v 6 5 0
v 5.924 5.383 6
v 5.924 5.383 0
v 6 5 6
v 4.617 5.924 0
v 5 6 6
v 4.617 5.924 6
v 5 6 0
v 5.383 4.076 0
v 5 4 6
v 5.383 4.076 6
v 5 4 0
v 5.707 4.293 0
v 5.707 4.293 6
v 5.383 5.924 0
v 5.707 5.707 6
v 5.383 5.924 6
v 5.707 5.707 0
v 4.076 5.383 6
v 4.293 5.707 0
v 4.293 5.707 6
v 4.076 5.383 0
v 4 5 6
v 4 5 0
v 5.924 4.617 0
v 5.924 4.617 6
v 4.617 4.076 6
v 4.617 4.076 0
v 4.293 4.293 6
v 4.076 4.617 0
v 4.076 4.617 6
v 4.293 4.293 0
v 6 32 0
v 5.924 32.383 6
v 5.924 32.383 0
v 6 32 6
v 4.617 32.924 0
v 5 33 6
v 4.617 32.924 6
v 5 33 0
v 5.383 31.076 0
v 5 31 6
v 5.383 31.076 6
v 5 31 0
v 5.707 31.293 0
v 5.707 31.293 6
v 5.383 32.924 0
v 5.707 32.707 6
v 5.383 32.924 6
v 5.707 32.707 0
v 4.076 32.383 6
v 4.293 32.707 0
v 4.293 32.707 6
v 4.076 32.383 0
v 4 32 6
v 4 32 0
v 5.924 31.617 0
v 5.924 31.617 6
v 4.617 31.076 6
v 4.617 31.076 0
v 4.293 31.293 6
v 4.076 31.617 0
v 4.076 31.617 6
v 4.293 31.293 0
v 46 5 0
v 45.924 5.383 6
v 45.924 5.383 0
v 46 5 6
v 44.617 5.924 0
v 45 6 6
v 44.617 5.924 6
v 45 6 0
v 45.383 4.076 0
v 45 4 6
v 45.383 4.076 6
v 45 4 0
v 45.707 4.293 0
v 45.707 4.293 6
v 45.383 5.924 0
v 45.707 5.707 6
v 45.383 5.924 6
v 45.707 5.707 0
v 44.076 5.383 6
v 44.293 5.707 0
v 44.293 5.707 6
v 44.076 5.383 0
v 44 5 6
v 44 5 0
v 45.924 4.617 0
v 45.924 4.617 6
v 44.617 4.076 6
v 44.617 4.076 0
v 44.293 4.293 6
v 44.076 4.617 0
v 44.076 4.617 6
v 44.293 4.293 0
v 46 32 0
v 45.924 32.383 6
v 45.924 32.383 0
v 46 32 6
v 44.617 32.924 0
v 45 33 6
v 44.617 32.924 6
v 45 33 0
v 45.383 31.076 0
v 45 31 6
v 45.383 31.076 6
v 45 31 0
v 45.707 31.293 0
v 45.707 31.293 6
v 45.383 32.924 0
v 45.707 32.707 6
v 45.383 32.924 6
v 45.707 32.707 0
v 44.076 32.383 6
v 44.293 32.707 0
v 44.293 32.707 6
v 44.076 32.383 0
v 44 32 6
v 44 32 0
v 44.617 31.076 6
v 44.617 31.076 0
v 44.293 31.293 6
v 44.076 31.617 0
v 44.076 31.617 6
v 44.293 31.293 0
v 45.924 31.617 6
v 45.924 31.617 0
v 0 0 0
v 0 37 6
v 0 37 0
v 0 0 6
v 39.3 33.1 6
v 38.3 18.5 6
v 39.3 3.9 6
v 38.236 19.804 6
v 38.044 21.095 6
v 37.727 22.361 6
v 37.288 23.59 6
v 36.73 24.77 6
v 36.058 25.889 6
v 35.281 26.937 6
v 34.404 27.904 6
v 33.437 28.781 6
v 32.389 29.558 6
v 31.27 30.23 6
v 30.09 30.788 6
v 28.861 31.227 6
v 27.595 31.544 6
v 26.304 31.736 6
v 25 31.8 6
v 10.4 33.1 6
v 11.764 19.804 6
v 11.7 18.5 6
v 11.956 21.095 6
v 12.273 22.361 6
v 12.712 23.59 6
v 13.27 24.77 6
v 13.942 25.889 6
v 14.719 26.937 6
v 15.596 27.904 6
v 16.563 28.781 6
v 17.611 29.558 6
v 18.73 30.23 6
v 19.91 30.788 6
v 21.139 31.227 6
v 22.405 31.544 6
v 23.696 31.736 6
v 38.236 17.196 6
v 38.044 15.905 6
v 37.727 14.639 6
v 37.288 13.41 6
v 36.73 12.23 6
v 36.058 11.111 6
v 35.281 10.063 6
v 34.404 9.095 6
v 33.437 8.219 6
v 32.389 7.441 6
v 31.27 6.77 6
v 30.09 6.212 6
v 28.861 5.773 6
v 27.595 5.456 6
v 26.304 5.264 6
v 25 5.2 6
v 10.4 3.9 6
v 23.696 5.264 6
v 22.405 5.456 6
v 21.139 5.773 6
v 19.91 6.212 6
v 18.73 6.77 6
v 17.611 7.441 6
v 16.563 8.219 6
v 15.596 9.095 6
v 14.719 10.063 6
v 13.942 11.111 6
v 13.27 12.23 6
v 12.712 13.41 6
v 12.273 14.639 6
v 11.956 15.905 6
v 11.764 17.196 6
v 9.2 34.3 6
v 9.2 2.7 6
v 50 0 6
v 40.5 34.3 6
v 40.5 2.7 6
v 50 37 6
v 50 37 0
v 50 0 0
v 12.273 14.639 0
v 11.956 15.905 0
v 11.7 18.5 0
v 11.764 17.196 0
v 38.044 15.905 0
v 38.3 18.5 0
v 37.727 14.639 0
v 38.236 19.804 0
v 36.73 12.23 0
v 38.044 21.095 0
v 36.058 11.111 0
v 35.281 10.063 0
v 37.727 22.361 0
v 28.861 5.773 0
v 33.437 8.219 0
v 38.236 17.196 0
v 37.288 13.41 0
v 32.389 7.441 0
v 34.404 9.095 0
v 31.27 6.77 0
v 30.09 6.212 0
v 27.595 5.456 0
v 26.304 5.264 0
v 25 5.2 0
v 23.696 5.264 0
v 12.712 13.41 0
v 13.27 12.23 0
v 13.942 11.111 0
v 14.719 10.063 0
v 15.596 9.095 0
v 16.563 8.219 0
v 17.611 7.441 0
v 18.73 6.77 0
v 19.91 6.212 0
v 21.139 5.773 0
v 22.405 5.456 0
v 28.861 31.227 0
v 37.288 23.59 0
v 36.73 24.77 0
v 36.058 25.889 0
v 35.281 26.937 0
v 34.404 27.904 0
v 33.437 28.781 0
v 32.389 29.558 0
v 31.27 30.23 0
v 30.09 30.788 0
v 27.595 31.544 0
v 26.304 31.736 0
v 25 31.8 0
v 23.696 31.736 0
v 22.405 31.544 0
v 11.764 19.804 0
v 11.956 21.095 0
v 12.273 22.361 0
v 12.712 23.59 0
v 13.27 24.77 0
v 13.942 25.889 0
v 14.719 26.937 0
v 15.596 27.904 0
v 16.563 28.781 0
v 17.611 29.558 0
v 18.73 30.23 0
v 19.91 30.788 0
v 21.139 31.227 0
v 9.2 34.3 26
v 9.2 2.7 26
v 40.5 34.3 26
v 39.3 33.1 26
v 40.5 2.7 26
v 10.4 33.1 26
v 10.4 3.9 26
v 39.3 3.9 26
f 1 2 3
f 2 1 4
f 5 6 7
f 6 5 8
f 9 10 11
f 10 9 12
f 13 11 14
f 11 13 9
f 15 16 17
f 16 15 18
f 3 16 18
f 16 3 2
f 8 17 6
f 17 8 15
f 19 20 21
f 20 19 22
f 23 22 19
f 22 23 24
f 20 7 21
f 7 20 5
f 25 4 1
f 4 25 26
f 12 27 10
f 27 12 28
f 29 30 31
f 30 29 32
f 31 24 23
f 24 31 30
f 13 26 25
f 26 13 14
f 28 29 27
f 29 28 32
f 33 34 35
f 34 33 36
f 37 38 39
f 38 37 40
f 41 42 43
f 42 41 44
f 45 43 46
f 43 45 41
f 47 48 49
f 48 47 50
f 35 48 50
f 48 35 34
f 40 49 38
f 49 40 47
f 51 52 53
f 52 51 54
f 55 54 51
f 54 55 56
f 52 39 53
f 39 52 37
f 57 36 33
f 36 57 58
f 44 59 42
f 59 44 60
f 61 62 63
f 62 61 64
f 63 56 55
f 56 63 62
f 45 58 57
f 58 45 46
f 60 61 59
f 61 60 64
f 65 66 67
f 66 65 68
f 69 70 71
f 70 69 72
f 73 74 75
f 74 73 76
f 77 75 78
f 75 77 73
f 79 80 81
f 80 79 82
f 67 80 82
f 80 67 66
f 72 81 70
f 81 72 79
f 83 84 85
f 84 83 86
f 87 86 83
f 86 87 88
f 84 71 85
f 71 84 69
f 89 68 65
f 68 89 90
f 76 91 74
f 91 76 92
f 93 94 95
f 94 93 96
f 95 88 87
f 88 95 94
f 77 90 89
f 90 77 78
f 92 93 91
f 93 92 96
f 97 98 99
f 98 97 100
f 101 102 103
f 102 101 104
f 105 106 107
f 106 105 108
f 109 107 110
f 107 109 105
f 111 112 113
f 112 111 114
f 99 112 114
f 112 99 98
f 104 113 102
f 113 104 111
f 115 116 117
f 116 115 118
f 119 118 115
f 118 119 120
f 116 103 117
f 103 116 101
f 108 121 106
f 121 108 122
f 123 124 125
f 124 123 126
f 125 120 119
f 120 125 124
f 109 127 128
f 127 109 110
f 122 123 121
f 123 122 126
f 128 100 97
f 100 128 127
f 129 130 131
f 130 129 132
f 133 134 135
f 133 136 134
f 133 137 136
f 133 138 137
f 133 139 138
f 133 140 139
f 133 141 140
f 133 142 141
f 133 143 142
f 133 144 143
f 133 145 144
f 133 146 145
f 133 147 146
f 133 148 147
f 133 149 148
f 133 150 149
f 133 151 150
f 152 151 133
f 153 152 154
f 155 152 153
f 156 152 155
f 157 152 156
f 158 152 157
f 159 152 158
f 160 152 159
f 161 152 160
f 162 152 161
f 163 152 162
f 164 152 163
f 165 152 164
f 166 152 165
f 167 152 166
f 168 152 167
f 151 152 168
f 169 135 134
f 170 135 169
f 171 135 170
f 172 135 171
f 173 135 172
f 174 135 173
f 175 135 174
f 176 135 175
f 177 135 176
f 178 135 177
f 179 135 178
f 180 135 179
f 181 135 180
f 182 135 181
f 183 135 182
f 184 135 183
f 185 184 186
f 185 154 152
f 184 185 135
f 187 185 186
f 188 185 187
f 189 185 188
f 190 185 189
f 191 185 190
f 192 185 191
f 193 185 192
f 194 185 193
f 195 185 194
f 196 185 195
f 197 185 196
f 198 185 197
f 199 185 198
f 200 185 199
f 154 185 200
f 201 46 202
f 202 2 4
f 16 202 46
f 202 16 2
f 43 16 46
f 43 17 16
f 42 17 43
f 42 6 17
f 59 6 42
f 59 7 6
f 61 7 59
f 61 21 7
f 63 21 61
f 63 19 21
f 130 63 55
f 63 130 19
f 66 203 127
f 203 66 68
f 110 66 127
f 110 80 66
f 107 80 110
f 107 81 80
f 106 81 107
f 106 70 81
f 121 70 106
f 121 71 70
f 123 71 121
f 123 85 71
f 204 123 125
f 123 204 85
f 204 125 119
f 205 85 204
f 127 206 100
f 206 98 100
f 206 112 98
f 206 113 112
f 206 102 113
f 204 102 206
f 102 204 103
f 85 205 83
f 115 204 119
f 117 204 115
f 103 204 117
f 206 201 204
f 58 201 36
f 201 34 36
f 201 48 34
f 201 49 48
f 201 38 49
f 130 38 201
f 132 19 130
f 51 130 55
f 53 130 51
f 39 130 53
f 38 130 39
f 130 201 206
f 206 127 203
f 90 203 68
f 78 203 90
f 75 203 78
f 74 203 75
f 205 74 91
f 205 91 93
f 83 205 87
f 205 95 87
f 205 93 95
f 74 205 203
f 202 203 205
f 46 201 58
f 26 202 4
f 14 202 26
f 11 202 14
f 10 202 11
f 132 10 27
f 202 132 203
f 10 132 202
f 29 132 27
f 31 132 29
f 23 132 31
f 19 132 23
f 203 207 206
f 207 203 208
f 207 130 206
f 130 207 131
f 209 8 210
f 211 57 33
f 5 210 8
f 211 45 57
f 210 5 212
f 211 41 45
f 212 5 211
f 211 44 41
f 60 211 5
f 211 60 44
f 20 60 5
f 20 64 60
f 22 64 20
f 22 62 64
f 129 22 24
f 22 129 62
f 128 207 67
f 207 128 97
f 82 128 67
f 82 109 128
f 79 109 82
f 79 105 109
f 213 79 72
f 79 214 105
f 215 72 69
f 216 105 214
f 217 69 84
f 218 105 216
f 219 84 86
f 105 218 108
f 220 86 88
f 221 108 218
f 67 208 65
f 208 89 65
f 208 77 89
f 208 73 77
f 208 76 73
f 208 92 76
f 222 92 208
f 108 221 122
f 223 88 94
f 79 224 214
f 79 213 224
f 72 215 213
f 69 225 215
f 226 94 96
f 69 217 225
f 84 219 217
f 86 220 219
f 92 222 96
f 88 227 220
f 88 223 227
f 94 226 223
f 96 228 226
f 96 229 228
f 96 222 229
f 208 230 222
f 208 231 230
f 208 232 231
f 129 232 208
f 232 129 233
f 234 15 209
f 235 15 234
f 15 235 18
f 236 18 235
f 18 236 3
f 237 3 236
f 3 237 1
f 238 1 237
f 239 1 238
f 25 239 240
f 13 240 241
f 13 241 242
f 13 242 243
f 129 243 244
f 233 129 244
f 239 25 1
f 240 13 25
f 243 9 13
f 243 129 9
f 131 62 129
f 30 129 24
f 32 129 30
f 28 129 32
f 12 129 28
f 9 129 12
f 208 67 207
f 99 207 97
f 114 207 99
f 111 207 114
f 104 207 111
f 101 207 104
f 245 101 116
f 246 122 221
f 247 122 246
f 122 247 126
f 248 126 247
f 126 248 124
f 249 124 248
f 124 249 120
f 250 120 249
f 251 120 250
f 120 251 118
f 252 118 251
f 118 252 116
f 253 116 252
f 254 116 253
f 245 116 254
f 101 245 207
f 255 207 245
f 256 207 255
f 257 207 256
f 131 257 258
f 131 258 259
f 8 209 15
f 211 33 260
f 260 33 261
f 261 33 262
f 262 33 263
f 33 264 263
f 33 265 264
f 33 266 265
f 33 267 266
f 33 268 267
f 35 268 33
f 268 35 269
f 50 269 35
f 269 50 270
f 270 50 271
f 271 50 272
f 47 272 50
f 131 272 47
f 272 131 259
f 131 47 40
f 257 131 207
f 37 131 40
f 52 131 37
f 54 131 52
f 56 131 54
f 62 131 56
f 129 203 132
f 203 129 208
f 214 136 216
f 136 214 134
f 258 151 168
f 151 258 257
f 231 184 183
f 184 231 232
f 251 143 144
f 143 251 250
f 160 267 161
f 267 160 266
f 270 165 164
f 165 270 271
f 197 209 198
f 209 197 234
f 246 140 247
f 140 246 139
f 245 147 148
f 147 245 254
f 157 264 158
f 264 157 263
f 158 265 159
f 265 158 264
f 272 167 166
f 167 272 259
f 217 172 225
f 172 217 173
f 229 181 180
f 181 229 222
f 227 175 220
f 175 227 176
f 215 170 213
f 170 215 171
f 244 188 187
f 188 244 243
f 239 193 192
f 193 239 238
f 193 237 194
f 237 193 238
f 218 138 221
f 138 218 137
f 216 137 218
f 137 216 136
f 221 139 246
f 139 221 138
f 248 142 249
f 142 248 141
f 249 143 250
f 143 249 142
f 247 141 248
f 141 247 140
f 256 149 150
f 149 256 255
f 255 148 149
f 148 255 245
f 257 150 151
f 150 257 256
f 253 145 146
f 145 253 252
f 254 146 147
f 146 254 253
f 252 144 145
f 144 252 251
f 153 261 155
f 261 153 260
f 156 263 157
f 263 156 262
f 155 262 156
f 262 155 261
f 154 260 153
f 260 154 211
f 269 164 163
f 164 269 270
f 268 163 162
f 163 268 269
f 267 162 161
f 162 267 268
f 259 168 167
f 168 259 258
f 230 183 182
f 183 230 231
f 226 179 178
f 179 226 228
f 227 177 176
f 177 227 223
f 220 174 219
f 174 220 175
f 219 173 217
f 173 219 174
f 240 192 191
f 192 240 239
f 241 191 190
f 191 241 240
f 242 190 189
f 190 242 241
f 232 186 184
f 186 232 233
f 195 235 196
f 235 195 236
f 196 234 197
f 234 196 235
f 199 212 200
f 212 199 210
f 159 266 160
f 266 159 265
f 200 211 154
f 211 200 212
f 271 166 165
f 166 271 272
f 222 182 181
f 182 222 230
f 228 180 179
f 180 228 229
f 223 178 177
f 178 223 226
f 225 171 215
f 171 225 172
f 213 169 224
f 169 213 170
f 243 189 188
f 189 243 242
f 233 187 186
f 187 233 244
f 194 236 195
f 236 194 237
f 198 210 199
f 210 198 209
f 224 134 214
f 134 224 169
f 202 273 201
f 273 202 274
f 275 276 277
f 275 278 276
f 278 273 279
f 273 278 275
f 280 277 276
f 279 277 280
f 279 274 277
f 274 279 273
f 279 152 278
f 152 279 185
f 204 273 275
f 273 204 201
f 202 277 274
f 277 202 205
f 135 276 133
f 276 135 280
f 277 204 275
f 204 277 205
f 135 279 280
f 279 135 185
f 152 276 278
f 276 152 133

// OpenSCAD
baseX=50;
baseY=37;
baseZ=6;

centralHoleRadius=26.6/2;
centralHoleLipRadius=35/2;


fixScrews1Radius=3/2;
fixScrews1DistFromEdge=5;

skirtHeight=20;
skirtWallsThickness=1.2;

gasketThickness=1;


module fixScrews()
{
translate([fixScrews1DistFromEdge,fixScrews1DistFromEdge,-1])
{
    cylinder(fixScrews1Radius,h=baseZ*2,$fn=16);
}

translate([fixScrews1DistFromEdge,baseY-fixScrews1DistFromEdge,-1])
{
    cylinder(fixScrews1Radius,h=baseZ*2,$fn=16);
}

translate([baseX-fixScrews1DistFromEdge,fixScrews1DistFromEdge,-1])
{
    cylinder(fixScrews1Radius,h=baseZ*2,$fn=16);
}

translate([baseX-fixScrews1DistFromEdge,baseY-fixScrews1DistFromEdge,-1])
{
    cylinder(fixScrews1Radius,h=baseZ*2,$fn=16);
}
}


module fixationBasePlate()
{
difference()
{
    cube([baseX,baseY,baseZ]);
    translate([baseX/2,baseY/2,-baseZ/2])
    {
        cylinder(r=centralHoleRadius,h=baseZ*2,$fn=64);
    }
    fixScrews();
}
}

module gasket()
{
    difference()
    {
        cube([baseX,baseY,gasketThickness]);
        translate([baseX/2,baseY/2,-baseZ/2])
        {
            cylinder(r=centralHoleRadius,h=baseZ*2,$fn=64);
        }
        fixScrews();
    }
}


module sunSkirt()
{
fixationBasePlate();
    translate([baseX/2-centralHoleRadius-2.5,baseY/2-centralHoleRadius-2.5,baseZ])
    {
        cube([skirtWallsThickness,centralHoleRadius*2+5,skirtHeight]);
    }
    translate([baseX/2+centralHoleRadius+1,baseY/2-centralHoleRadius-2.5,baseZ])
    {
        cube([skirtWallsThickness,centralHoleRadius*2+5,skirtHeight]);
    }

    translate([baseX/2-centralHoleRadius-2.5,baseY/2-centralHoleRadius-2.5,baseZ])
    {
        cube([centralHoleRadius*2+3.5,skirtWallsThickness,skirtHeight]);
    }
    
    translate([baseX/2-centralHoleRadius-2.5,baseY/2+centralHoleRadius+2.5-skirtWallsThickness,baseZ])
    {
        cube([centralHoleRadius*2+3.5,skirtWallsThickness,skirtHeight]);
    }

}
//fixationBasePlate();
//gasket();
sunSkirt();
